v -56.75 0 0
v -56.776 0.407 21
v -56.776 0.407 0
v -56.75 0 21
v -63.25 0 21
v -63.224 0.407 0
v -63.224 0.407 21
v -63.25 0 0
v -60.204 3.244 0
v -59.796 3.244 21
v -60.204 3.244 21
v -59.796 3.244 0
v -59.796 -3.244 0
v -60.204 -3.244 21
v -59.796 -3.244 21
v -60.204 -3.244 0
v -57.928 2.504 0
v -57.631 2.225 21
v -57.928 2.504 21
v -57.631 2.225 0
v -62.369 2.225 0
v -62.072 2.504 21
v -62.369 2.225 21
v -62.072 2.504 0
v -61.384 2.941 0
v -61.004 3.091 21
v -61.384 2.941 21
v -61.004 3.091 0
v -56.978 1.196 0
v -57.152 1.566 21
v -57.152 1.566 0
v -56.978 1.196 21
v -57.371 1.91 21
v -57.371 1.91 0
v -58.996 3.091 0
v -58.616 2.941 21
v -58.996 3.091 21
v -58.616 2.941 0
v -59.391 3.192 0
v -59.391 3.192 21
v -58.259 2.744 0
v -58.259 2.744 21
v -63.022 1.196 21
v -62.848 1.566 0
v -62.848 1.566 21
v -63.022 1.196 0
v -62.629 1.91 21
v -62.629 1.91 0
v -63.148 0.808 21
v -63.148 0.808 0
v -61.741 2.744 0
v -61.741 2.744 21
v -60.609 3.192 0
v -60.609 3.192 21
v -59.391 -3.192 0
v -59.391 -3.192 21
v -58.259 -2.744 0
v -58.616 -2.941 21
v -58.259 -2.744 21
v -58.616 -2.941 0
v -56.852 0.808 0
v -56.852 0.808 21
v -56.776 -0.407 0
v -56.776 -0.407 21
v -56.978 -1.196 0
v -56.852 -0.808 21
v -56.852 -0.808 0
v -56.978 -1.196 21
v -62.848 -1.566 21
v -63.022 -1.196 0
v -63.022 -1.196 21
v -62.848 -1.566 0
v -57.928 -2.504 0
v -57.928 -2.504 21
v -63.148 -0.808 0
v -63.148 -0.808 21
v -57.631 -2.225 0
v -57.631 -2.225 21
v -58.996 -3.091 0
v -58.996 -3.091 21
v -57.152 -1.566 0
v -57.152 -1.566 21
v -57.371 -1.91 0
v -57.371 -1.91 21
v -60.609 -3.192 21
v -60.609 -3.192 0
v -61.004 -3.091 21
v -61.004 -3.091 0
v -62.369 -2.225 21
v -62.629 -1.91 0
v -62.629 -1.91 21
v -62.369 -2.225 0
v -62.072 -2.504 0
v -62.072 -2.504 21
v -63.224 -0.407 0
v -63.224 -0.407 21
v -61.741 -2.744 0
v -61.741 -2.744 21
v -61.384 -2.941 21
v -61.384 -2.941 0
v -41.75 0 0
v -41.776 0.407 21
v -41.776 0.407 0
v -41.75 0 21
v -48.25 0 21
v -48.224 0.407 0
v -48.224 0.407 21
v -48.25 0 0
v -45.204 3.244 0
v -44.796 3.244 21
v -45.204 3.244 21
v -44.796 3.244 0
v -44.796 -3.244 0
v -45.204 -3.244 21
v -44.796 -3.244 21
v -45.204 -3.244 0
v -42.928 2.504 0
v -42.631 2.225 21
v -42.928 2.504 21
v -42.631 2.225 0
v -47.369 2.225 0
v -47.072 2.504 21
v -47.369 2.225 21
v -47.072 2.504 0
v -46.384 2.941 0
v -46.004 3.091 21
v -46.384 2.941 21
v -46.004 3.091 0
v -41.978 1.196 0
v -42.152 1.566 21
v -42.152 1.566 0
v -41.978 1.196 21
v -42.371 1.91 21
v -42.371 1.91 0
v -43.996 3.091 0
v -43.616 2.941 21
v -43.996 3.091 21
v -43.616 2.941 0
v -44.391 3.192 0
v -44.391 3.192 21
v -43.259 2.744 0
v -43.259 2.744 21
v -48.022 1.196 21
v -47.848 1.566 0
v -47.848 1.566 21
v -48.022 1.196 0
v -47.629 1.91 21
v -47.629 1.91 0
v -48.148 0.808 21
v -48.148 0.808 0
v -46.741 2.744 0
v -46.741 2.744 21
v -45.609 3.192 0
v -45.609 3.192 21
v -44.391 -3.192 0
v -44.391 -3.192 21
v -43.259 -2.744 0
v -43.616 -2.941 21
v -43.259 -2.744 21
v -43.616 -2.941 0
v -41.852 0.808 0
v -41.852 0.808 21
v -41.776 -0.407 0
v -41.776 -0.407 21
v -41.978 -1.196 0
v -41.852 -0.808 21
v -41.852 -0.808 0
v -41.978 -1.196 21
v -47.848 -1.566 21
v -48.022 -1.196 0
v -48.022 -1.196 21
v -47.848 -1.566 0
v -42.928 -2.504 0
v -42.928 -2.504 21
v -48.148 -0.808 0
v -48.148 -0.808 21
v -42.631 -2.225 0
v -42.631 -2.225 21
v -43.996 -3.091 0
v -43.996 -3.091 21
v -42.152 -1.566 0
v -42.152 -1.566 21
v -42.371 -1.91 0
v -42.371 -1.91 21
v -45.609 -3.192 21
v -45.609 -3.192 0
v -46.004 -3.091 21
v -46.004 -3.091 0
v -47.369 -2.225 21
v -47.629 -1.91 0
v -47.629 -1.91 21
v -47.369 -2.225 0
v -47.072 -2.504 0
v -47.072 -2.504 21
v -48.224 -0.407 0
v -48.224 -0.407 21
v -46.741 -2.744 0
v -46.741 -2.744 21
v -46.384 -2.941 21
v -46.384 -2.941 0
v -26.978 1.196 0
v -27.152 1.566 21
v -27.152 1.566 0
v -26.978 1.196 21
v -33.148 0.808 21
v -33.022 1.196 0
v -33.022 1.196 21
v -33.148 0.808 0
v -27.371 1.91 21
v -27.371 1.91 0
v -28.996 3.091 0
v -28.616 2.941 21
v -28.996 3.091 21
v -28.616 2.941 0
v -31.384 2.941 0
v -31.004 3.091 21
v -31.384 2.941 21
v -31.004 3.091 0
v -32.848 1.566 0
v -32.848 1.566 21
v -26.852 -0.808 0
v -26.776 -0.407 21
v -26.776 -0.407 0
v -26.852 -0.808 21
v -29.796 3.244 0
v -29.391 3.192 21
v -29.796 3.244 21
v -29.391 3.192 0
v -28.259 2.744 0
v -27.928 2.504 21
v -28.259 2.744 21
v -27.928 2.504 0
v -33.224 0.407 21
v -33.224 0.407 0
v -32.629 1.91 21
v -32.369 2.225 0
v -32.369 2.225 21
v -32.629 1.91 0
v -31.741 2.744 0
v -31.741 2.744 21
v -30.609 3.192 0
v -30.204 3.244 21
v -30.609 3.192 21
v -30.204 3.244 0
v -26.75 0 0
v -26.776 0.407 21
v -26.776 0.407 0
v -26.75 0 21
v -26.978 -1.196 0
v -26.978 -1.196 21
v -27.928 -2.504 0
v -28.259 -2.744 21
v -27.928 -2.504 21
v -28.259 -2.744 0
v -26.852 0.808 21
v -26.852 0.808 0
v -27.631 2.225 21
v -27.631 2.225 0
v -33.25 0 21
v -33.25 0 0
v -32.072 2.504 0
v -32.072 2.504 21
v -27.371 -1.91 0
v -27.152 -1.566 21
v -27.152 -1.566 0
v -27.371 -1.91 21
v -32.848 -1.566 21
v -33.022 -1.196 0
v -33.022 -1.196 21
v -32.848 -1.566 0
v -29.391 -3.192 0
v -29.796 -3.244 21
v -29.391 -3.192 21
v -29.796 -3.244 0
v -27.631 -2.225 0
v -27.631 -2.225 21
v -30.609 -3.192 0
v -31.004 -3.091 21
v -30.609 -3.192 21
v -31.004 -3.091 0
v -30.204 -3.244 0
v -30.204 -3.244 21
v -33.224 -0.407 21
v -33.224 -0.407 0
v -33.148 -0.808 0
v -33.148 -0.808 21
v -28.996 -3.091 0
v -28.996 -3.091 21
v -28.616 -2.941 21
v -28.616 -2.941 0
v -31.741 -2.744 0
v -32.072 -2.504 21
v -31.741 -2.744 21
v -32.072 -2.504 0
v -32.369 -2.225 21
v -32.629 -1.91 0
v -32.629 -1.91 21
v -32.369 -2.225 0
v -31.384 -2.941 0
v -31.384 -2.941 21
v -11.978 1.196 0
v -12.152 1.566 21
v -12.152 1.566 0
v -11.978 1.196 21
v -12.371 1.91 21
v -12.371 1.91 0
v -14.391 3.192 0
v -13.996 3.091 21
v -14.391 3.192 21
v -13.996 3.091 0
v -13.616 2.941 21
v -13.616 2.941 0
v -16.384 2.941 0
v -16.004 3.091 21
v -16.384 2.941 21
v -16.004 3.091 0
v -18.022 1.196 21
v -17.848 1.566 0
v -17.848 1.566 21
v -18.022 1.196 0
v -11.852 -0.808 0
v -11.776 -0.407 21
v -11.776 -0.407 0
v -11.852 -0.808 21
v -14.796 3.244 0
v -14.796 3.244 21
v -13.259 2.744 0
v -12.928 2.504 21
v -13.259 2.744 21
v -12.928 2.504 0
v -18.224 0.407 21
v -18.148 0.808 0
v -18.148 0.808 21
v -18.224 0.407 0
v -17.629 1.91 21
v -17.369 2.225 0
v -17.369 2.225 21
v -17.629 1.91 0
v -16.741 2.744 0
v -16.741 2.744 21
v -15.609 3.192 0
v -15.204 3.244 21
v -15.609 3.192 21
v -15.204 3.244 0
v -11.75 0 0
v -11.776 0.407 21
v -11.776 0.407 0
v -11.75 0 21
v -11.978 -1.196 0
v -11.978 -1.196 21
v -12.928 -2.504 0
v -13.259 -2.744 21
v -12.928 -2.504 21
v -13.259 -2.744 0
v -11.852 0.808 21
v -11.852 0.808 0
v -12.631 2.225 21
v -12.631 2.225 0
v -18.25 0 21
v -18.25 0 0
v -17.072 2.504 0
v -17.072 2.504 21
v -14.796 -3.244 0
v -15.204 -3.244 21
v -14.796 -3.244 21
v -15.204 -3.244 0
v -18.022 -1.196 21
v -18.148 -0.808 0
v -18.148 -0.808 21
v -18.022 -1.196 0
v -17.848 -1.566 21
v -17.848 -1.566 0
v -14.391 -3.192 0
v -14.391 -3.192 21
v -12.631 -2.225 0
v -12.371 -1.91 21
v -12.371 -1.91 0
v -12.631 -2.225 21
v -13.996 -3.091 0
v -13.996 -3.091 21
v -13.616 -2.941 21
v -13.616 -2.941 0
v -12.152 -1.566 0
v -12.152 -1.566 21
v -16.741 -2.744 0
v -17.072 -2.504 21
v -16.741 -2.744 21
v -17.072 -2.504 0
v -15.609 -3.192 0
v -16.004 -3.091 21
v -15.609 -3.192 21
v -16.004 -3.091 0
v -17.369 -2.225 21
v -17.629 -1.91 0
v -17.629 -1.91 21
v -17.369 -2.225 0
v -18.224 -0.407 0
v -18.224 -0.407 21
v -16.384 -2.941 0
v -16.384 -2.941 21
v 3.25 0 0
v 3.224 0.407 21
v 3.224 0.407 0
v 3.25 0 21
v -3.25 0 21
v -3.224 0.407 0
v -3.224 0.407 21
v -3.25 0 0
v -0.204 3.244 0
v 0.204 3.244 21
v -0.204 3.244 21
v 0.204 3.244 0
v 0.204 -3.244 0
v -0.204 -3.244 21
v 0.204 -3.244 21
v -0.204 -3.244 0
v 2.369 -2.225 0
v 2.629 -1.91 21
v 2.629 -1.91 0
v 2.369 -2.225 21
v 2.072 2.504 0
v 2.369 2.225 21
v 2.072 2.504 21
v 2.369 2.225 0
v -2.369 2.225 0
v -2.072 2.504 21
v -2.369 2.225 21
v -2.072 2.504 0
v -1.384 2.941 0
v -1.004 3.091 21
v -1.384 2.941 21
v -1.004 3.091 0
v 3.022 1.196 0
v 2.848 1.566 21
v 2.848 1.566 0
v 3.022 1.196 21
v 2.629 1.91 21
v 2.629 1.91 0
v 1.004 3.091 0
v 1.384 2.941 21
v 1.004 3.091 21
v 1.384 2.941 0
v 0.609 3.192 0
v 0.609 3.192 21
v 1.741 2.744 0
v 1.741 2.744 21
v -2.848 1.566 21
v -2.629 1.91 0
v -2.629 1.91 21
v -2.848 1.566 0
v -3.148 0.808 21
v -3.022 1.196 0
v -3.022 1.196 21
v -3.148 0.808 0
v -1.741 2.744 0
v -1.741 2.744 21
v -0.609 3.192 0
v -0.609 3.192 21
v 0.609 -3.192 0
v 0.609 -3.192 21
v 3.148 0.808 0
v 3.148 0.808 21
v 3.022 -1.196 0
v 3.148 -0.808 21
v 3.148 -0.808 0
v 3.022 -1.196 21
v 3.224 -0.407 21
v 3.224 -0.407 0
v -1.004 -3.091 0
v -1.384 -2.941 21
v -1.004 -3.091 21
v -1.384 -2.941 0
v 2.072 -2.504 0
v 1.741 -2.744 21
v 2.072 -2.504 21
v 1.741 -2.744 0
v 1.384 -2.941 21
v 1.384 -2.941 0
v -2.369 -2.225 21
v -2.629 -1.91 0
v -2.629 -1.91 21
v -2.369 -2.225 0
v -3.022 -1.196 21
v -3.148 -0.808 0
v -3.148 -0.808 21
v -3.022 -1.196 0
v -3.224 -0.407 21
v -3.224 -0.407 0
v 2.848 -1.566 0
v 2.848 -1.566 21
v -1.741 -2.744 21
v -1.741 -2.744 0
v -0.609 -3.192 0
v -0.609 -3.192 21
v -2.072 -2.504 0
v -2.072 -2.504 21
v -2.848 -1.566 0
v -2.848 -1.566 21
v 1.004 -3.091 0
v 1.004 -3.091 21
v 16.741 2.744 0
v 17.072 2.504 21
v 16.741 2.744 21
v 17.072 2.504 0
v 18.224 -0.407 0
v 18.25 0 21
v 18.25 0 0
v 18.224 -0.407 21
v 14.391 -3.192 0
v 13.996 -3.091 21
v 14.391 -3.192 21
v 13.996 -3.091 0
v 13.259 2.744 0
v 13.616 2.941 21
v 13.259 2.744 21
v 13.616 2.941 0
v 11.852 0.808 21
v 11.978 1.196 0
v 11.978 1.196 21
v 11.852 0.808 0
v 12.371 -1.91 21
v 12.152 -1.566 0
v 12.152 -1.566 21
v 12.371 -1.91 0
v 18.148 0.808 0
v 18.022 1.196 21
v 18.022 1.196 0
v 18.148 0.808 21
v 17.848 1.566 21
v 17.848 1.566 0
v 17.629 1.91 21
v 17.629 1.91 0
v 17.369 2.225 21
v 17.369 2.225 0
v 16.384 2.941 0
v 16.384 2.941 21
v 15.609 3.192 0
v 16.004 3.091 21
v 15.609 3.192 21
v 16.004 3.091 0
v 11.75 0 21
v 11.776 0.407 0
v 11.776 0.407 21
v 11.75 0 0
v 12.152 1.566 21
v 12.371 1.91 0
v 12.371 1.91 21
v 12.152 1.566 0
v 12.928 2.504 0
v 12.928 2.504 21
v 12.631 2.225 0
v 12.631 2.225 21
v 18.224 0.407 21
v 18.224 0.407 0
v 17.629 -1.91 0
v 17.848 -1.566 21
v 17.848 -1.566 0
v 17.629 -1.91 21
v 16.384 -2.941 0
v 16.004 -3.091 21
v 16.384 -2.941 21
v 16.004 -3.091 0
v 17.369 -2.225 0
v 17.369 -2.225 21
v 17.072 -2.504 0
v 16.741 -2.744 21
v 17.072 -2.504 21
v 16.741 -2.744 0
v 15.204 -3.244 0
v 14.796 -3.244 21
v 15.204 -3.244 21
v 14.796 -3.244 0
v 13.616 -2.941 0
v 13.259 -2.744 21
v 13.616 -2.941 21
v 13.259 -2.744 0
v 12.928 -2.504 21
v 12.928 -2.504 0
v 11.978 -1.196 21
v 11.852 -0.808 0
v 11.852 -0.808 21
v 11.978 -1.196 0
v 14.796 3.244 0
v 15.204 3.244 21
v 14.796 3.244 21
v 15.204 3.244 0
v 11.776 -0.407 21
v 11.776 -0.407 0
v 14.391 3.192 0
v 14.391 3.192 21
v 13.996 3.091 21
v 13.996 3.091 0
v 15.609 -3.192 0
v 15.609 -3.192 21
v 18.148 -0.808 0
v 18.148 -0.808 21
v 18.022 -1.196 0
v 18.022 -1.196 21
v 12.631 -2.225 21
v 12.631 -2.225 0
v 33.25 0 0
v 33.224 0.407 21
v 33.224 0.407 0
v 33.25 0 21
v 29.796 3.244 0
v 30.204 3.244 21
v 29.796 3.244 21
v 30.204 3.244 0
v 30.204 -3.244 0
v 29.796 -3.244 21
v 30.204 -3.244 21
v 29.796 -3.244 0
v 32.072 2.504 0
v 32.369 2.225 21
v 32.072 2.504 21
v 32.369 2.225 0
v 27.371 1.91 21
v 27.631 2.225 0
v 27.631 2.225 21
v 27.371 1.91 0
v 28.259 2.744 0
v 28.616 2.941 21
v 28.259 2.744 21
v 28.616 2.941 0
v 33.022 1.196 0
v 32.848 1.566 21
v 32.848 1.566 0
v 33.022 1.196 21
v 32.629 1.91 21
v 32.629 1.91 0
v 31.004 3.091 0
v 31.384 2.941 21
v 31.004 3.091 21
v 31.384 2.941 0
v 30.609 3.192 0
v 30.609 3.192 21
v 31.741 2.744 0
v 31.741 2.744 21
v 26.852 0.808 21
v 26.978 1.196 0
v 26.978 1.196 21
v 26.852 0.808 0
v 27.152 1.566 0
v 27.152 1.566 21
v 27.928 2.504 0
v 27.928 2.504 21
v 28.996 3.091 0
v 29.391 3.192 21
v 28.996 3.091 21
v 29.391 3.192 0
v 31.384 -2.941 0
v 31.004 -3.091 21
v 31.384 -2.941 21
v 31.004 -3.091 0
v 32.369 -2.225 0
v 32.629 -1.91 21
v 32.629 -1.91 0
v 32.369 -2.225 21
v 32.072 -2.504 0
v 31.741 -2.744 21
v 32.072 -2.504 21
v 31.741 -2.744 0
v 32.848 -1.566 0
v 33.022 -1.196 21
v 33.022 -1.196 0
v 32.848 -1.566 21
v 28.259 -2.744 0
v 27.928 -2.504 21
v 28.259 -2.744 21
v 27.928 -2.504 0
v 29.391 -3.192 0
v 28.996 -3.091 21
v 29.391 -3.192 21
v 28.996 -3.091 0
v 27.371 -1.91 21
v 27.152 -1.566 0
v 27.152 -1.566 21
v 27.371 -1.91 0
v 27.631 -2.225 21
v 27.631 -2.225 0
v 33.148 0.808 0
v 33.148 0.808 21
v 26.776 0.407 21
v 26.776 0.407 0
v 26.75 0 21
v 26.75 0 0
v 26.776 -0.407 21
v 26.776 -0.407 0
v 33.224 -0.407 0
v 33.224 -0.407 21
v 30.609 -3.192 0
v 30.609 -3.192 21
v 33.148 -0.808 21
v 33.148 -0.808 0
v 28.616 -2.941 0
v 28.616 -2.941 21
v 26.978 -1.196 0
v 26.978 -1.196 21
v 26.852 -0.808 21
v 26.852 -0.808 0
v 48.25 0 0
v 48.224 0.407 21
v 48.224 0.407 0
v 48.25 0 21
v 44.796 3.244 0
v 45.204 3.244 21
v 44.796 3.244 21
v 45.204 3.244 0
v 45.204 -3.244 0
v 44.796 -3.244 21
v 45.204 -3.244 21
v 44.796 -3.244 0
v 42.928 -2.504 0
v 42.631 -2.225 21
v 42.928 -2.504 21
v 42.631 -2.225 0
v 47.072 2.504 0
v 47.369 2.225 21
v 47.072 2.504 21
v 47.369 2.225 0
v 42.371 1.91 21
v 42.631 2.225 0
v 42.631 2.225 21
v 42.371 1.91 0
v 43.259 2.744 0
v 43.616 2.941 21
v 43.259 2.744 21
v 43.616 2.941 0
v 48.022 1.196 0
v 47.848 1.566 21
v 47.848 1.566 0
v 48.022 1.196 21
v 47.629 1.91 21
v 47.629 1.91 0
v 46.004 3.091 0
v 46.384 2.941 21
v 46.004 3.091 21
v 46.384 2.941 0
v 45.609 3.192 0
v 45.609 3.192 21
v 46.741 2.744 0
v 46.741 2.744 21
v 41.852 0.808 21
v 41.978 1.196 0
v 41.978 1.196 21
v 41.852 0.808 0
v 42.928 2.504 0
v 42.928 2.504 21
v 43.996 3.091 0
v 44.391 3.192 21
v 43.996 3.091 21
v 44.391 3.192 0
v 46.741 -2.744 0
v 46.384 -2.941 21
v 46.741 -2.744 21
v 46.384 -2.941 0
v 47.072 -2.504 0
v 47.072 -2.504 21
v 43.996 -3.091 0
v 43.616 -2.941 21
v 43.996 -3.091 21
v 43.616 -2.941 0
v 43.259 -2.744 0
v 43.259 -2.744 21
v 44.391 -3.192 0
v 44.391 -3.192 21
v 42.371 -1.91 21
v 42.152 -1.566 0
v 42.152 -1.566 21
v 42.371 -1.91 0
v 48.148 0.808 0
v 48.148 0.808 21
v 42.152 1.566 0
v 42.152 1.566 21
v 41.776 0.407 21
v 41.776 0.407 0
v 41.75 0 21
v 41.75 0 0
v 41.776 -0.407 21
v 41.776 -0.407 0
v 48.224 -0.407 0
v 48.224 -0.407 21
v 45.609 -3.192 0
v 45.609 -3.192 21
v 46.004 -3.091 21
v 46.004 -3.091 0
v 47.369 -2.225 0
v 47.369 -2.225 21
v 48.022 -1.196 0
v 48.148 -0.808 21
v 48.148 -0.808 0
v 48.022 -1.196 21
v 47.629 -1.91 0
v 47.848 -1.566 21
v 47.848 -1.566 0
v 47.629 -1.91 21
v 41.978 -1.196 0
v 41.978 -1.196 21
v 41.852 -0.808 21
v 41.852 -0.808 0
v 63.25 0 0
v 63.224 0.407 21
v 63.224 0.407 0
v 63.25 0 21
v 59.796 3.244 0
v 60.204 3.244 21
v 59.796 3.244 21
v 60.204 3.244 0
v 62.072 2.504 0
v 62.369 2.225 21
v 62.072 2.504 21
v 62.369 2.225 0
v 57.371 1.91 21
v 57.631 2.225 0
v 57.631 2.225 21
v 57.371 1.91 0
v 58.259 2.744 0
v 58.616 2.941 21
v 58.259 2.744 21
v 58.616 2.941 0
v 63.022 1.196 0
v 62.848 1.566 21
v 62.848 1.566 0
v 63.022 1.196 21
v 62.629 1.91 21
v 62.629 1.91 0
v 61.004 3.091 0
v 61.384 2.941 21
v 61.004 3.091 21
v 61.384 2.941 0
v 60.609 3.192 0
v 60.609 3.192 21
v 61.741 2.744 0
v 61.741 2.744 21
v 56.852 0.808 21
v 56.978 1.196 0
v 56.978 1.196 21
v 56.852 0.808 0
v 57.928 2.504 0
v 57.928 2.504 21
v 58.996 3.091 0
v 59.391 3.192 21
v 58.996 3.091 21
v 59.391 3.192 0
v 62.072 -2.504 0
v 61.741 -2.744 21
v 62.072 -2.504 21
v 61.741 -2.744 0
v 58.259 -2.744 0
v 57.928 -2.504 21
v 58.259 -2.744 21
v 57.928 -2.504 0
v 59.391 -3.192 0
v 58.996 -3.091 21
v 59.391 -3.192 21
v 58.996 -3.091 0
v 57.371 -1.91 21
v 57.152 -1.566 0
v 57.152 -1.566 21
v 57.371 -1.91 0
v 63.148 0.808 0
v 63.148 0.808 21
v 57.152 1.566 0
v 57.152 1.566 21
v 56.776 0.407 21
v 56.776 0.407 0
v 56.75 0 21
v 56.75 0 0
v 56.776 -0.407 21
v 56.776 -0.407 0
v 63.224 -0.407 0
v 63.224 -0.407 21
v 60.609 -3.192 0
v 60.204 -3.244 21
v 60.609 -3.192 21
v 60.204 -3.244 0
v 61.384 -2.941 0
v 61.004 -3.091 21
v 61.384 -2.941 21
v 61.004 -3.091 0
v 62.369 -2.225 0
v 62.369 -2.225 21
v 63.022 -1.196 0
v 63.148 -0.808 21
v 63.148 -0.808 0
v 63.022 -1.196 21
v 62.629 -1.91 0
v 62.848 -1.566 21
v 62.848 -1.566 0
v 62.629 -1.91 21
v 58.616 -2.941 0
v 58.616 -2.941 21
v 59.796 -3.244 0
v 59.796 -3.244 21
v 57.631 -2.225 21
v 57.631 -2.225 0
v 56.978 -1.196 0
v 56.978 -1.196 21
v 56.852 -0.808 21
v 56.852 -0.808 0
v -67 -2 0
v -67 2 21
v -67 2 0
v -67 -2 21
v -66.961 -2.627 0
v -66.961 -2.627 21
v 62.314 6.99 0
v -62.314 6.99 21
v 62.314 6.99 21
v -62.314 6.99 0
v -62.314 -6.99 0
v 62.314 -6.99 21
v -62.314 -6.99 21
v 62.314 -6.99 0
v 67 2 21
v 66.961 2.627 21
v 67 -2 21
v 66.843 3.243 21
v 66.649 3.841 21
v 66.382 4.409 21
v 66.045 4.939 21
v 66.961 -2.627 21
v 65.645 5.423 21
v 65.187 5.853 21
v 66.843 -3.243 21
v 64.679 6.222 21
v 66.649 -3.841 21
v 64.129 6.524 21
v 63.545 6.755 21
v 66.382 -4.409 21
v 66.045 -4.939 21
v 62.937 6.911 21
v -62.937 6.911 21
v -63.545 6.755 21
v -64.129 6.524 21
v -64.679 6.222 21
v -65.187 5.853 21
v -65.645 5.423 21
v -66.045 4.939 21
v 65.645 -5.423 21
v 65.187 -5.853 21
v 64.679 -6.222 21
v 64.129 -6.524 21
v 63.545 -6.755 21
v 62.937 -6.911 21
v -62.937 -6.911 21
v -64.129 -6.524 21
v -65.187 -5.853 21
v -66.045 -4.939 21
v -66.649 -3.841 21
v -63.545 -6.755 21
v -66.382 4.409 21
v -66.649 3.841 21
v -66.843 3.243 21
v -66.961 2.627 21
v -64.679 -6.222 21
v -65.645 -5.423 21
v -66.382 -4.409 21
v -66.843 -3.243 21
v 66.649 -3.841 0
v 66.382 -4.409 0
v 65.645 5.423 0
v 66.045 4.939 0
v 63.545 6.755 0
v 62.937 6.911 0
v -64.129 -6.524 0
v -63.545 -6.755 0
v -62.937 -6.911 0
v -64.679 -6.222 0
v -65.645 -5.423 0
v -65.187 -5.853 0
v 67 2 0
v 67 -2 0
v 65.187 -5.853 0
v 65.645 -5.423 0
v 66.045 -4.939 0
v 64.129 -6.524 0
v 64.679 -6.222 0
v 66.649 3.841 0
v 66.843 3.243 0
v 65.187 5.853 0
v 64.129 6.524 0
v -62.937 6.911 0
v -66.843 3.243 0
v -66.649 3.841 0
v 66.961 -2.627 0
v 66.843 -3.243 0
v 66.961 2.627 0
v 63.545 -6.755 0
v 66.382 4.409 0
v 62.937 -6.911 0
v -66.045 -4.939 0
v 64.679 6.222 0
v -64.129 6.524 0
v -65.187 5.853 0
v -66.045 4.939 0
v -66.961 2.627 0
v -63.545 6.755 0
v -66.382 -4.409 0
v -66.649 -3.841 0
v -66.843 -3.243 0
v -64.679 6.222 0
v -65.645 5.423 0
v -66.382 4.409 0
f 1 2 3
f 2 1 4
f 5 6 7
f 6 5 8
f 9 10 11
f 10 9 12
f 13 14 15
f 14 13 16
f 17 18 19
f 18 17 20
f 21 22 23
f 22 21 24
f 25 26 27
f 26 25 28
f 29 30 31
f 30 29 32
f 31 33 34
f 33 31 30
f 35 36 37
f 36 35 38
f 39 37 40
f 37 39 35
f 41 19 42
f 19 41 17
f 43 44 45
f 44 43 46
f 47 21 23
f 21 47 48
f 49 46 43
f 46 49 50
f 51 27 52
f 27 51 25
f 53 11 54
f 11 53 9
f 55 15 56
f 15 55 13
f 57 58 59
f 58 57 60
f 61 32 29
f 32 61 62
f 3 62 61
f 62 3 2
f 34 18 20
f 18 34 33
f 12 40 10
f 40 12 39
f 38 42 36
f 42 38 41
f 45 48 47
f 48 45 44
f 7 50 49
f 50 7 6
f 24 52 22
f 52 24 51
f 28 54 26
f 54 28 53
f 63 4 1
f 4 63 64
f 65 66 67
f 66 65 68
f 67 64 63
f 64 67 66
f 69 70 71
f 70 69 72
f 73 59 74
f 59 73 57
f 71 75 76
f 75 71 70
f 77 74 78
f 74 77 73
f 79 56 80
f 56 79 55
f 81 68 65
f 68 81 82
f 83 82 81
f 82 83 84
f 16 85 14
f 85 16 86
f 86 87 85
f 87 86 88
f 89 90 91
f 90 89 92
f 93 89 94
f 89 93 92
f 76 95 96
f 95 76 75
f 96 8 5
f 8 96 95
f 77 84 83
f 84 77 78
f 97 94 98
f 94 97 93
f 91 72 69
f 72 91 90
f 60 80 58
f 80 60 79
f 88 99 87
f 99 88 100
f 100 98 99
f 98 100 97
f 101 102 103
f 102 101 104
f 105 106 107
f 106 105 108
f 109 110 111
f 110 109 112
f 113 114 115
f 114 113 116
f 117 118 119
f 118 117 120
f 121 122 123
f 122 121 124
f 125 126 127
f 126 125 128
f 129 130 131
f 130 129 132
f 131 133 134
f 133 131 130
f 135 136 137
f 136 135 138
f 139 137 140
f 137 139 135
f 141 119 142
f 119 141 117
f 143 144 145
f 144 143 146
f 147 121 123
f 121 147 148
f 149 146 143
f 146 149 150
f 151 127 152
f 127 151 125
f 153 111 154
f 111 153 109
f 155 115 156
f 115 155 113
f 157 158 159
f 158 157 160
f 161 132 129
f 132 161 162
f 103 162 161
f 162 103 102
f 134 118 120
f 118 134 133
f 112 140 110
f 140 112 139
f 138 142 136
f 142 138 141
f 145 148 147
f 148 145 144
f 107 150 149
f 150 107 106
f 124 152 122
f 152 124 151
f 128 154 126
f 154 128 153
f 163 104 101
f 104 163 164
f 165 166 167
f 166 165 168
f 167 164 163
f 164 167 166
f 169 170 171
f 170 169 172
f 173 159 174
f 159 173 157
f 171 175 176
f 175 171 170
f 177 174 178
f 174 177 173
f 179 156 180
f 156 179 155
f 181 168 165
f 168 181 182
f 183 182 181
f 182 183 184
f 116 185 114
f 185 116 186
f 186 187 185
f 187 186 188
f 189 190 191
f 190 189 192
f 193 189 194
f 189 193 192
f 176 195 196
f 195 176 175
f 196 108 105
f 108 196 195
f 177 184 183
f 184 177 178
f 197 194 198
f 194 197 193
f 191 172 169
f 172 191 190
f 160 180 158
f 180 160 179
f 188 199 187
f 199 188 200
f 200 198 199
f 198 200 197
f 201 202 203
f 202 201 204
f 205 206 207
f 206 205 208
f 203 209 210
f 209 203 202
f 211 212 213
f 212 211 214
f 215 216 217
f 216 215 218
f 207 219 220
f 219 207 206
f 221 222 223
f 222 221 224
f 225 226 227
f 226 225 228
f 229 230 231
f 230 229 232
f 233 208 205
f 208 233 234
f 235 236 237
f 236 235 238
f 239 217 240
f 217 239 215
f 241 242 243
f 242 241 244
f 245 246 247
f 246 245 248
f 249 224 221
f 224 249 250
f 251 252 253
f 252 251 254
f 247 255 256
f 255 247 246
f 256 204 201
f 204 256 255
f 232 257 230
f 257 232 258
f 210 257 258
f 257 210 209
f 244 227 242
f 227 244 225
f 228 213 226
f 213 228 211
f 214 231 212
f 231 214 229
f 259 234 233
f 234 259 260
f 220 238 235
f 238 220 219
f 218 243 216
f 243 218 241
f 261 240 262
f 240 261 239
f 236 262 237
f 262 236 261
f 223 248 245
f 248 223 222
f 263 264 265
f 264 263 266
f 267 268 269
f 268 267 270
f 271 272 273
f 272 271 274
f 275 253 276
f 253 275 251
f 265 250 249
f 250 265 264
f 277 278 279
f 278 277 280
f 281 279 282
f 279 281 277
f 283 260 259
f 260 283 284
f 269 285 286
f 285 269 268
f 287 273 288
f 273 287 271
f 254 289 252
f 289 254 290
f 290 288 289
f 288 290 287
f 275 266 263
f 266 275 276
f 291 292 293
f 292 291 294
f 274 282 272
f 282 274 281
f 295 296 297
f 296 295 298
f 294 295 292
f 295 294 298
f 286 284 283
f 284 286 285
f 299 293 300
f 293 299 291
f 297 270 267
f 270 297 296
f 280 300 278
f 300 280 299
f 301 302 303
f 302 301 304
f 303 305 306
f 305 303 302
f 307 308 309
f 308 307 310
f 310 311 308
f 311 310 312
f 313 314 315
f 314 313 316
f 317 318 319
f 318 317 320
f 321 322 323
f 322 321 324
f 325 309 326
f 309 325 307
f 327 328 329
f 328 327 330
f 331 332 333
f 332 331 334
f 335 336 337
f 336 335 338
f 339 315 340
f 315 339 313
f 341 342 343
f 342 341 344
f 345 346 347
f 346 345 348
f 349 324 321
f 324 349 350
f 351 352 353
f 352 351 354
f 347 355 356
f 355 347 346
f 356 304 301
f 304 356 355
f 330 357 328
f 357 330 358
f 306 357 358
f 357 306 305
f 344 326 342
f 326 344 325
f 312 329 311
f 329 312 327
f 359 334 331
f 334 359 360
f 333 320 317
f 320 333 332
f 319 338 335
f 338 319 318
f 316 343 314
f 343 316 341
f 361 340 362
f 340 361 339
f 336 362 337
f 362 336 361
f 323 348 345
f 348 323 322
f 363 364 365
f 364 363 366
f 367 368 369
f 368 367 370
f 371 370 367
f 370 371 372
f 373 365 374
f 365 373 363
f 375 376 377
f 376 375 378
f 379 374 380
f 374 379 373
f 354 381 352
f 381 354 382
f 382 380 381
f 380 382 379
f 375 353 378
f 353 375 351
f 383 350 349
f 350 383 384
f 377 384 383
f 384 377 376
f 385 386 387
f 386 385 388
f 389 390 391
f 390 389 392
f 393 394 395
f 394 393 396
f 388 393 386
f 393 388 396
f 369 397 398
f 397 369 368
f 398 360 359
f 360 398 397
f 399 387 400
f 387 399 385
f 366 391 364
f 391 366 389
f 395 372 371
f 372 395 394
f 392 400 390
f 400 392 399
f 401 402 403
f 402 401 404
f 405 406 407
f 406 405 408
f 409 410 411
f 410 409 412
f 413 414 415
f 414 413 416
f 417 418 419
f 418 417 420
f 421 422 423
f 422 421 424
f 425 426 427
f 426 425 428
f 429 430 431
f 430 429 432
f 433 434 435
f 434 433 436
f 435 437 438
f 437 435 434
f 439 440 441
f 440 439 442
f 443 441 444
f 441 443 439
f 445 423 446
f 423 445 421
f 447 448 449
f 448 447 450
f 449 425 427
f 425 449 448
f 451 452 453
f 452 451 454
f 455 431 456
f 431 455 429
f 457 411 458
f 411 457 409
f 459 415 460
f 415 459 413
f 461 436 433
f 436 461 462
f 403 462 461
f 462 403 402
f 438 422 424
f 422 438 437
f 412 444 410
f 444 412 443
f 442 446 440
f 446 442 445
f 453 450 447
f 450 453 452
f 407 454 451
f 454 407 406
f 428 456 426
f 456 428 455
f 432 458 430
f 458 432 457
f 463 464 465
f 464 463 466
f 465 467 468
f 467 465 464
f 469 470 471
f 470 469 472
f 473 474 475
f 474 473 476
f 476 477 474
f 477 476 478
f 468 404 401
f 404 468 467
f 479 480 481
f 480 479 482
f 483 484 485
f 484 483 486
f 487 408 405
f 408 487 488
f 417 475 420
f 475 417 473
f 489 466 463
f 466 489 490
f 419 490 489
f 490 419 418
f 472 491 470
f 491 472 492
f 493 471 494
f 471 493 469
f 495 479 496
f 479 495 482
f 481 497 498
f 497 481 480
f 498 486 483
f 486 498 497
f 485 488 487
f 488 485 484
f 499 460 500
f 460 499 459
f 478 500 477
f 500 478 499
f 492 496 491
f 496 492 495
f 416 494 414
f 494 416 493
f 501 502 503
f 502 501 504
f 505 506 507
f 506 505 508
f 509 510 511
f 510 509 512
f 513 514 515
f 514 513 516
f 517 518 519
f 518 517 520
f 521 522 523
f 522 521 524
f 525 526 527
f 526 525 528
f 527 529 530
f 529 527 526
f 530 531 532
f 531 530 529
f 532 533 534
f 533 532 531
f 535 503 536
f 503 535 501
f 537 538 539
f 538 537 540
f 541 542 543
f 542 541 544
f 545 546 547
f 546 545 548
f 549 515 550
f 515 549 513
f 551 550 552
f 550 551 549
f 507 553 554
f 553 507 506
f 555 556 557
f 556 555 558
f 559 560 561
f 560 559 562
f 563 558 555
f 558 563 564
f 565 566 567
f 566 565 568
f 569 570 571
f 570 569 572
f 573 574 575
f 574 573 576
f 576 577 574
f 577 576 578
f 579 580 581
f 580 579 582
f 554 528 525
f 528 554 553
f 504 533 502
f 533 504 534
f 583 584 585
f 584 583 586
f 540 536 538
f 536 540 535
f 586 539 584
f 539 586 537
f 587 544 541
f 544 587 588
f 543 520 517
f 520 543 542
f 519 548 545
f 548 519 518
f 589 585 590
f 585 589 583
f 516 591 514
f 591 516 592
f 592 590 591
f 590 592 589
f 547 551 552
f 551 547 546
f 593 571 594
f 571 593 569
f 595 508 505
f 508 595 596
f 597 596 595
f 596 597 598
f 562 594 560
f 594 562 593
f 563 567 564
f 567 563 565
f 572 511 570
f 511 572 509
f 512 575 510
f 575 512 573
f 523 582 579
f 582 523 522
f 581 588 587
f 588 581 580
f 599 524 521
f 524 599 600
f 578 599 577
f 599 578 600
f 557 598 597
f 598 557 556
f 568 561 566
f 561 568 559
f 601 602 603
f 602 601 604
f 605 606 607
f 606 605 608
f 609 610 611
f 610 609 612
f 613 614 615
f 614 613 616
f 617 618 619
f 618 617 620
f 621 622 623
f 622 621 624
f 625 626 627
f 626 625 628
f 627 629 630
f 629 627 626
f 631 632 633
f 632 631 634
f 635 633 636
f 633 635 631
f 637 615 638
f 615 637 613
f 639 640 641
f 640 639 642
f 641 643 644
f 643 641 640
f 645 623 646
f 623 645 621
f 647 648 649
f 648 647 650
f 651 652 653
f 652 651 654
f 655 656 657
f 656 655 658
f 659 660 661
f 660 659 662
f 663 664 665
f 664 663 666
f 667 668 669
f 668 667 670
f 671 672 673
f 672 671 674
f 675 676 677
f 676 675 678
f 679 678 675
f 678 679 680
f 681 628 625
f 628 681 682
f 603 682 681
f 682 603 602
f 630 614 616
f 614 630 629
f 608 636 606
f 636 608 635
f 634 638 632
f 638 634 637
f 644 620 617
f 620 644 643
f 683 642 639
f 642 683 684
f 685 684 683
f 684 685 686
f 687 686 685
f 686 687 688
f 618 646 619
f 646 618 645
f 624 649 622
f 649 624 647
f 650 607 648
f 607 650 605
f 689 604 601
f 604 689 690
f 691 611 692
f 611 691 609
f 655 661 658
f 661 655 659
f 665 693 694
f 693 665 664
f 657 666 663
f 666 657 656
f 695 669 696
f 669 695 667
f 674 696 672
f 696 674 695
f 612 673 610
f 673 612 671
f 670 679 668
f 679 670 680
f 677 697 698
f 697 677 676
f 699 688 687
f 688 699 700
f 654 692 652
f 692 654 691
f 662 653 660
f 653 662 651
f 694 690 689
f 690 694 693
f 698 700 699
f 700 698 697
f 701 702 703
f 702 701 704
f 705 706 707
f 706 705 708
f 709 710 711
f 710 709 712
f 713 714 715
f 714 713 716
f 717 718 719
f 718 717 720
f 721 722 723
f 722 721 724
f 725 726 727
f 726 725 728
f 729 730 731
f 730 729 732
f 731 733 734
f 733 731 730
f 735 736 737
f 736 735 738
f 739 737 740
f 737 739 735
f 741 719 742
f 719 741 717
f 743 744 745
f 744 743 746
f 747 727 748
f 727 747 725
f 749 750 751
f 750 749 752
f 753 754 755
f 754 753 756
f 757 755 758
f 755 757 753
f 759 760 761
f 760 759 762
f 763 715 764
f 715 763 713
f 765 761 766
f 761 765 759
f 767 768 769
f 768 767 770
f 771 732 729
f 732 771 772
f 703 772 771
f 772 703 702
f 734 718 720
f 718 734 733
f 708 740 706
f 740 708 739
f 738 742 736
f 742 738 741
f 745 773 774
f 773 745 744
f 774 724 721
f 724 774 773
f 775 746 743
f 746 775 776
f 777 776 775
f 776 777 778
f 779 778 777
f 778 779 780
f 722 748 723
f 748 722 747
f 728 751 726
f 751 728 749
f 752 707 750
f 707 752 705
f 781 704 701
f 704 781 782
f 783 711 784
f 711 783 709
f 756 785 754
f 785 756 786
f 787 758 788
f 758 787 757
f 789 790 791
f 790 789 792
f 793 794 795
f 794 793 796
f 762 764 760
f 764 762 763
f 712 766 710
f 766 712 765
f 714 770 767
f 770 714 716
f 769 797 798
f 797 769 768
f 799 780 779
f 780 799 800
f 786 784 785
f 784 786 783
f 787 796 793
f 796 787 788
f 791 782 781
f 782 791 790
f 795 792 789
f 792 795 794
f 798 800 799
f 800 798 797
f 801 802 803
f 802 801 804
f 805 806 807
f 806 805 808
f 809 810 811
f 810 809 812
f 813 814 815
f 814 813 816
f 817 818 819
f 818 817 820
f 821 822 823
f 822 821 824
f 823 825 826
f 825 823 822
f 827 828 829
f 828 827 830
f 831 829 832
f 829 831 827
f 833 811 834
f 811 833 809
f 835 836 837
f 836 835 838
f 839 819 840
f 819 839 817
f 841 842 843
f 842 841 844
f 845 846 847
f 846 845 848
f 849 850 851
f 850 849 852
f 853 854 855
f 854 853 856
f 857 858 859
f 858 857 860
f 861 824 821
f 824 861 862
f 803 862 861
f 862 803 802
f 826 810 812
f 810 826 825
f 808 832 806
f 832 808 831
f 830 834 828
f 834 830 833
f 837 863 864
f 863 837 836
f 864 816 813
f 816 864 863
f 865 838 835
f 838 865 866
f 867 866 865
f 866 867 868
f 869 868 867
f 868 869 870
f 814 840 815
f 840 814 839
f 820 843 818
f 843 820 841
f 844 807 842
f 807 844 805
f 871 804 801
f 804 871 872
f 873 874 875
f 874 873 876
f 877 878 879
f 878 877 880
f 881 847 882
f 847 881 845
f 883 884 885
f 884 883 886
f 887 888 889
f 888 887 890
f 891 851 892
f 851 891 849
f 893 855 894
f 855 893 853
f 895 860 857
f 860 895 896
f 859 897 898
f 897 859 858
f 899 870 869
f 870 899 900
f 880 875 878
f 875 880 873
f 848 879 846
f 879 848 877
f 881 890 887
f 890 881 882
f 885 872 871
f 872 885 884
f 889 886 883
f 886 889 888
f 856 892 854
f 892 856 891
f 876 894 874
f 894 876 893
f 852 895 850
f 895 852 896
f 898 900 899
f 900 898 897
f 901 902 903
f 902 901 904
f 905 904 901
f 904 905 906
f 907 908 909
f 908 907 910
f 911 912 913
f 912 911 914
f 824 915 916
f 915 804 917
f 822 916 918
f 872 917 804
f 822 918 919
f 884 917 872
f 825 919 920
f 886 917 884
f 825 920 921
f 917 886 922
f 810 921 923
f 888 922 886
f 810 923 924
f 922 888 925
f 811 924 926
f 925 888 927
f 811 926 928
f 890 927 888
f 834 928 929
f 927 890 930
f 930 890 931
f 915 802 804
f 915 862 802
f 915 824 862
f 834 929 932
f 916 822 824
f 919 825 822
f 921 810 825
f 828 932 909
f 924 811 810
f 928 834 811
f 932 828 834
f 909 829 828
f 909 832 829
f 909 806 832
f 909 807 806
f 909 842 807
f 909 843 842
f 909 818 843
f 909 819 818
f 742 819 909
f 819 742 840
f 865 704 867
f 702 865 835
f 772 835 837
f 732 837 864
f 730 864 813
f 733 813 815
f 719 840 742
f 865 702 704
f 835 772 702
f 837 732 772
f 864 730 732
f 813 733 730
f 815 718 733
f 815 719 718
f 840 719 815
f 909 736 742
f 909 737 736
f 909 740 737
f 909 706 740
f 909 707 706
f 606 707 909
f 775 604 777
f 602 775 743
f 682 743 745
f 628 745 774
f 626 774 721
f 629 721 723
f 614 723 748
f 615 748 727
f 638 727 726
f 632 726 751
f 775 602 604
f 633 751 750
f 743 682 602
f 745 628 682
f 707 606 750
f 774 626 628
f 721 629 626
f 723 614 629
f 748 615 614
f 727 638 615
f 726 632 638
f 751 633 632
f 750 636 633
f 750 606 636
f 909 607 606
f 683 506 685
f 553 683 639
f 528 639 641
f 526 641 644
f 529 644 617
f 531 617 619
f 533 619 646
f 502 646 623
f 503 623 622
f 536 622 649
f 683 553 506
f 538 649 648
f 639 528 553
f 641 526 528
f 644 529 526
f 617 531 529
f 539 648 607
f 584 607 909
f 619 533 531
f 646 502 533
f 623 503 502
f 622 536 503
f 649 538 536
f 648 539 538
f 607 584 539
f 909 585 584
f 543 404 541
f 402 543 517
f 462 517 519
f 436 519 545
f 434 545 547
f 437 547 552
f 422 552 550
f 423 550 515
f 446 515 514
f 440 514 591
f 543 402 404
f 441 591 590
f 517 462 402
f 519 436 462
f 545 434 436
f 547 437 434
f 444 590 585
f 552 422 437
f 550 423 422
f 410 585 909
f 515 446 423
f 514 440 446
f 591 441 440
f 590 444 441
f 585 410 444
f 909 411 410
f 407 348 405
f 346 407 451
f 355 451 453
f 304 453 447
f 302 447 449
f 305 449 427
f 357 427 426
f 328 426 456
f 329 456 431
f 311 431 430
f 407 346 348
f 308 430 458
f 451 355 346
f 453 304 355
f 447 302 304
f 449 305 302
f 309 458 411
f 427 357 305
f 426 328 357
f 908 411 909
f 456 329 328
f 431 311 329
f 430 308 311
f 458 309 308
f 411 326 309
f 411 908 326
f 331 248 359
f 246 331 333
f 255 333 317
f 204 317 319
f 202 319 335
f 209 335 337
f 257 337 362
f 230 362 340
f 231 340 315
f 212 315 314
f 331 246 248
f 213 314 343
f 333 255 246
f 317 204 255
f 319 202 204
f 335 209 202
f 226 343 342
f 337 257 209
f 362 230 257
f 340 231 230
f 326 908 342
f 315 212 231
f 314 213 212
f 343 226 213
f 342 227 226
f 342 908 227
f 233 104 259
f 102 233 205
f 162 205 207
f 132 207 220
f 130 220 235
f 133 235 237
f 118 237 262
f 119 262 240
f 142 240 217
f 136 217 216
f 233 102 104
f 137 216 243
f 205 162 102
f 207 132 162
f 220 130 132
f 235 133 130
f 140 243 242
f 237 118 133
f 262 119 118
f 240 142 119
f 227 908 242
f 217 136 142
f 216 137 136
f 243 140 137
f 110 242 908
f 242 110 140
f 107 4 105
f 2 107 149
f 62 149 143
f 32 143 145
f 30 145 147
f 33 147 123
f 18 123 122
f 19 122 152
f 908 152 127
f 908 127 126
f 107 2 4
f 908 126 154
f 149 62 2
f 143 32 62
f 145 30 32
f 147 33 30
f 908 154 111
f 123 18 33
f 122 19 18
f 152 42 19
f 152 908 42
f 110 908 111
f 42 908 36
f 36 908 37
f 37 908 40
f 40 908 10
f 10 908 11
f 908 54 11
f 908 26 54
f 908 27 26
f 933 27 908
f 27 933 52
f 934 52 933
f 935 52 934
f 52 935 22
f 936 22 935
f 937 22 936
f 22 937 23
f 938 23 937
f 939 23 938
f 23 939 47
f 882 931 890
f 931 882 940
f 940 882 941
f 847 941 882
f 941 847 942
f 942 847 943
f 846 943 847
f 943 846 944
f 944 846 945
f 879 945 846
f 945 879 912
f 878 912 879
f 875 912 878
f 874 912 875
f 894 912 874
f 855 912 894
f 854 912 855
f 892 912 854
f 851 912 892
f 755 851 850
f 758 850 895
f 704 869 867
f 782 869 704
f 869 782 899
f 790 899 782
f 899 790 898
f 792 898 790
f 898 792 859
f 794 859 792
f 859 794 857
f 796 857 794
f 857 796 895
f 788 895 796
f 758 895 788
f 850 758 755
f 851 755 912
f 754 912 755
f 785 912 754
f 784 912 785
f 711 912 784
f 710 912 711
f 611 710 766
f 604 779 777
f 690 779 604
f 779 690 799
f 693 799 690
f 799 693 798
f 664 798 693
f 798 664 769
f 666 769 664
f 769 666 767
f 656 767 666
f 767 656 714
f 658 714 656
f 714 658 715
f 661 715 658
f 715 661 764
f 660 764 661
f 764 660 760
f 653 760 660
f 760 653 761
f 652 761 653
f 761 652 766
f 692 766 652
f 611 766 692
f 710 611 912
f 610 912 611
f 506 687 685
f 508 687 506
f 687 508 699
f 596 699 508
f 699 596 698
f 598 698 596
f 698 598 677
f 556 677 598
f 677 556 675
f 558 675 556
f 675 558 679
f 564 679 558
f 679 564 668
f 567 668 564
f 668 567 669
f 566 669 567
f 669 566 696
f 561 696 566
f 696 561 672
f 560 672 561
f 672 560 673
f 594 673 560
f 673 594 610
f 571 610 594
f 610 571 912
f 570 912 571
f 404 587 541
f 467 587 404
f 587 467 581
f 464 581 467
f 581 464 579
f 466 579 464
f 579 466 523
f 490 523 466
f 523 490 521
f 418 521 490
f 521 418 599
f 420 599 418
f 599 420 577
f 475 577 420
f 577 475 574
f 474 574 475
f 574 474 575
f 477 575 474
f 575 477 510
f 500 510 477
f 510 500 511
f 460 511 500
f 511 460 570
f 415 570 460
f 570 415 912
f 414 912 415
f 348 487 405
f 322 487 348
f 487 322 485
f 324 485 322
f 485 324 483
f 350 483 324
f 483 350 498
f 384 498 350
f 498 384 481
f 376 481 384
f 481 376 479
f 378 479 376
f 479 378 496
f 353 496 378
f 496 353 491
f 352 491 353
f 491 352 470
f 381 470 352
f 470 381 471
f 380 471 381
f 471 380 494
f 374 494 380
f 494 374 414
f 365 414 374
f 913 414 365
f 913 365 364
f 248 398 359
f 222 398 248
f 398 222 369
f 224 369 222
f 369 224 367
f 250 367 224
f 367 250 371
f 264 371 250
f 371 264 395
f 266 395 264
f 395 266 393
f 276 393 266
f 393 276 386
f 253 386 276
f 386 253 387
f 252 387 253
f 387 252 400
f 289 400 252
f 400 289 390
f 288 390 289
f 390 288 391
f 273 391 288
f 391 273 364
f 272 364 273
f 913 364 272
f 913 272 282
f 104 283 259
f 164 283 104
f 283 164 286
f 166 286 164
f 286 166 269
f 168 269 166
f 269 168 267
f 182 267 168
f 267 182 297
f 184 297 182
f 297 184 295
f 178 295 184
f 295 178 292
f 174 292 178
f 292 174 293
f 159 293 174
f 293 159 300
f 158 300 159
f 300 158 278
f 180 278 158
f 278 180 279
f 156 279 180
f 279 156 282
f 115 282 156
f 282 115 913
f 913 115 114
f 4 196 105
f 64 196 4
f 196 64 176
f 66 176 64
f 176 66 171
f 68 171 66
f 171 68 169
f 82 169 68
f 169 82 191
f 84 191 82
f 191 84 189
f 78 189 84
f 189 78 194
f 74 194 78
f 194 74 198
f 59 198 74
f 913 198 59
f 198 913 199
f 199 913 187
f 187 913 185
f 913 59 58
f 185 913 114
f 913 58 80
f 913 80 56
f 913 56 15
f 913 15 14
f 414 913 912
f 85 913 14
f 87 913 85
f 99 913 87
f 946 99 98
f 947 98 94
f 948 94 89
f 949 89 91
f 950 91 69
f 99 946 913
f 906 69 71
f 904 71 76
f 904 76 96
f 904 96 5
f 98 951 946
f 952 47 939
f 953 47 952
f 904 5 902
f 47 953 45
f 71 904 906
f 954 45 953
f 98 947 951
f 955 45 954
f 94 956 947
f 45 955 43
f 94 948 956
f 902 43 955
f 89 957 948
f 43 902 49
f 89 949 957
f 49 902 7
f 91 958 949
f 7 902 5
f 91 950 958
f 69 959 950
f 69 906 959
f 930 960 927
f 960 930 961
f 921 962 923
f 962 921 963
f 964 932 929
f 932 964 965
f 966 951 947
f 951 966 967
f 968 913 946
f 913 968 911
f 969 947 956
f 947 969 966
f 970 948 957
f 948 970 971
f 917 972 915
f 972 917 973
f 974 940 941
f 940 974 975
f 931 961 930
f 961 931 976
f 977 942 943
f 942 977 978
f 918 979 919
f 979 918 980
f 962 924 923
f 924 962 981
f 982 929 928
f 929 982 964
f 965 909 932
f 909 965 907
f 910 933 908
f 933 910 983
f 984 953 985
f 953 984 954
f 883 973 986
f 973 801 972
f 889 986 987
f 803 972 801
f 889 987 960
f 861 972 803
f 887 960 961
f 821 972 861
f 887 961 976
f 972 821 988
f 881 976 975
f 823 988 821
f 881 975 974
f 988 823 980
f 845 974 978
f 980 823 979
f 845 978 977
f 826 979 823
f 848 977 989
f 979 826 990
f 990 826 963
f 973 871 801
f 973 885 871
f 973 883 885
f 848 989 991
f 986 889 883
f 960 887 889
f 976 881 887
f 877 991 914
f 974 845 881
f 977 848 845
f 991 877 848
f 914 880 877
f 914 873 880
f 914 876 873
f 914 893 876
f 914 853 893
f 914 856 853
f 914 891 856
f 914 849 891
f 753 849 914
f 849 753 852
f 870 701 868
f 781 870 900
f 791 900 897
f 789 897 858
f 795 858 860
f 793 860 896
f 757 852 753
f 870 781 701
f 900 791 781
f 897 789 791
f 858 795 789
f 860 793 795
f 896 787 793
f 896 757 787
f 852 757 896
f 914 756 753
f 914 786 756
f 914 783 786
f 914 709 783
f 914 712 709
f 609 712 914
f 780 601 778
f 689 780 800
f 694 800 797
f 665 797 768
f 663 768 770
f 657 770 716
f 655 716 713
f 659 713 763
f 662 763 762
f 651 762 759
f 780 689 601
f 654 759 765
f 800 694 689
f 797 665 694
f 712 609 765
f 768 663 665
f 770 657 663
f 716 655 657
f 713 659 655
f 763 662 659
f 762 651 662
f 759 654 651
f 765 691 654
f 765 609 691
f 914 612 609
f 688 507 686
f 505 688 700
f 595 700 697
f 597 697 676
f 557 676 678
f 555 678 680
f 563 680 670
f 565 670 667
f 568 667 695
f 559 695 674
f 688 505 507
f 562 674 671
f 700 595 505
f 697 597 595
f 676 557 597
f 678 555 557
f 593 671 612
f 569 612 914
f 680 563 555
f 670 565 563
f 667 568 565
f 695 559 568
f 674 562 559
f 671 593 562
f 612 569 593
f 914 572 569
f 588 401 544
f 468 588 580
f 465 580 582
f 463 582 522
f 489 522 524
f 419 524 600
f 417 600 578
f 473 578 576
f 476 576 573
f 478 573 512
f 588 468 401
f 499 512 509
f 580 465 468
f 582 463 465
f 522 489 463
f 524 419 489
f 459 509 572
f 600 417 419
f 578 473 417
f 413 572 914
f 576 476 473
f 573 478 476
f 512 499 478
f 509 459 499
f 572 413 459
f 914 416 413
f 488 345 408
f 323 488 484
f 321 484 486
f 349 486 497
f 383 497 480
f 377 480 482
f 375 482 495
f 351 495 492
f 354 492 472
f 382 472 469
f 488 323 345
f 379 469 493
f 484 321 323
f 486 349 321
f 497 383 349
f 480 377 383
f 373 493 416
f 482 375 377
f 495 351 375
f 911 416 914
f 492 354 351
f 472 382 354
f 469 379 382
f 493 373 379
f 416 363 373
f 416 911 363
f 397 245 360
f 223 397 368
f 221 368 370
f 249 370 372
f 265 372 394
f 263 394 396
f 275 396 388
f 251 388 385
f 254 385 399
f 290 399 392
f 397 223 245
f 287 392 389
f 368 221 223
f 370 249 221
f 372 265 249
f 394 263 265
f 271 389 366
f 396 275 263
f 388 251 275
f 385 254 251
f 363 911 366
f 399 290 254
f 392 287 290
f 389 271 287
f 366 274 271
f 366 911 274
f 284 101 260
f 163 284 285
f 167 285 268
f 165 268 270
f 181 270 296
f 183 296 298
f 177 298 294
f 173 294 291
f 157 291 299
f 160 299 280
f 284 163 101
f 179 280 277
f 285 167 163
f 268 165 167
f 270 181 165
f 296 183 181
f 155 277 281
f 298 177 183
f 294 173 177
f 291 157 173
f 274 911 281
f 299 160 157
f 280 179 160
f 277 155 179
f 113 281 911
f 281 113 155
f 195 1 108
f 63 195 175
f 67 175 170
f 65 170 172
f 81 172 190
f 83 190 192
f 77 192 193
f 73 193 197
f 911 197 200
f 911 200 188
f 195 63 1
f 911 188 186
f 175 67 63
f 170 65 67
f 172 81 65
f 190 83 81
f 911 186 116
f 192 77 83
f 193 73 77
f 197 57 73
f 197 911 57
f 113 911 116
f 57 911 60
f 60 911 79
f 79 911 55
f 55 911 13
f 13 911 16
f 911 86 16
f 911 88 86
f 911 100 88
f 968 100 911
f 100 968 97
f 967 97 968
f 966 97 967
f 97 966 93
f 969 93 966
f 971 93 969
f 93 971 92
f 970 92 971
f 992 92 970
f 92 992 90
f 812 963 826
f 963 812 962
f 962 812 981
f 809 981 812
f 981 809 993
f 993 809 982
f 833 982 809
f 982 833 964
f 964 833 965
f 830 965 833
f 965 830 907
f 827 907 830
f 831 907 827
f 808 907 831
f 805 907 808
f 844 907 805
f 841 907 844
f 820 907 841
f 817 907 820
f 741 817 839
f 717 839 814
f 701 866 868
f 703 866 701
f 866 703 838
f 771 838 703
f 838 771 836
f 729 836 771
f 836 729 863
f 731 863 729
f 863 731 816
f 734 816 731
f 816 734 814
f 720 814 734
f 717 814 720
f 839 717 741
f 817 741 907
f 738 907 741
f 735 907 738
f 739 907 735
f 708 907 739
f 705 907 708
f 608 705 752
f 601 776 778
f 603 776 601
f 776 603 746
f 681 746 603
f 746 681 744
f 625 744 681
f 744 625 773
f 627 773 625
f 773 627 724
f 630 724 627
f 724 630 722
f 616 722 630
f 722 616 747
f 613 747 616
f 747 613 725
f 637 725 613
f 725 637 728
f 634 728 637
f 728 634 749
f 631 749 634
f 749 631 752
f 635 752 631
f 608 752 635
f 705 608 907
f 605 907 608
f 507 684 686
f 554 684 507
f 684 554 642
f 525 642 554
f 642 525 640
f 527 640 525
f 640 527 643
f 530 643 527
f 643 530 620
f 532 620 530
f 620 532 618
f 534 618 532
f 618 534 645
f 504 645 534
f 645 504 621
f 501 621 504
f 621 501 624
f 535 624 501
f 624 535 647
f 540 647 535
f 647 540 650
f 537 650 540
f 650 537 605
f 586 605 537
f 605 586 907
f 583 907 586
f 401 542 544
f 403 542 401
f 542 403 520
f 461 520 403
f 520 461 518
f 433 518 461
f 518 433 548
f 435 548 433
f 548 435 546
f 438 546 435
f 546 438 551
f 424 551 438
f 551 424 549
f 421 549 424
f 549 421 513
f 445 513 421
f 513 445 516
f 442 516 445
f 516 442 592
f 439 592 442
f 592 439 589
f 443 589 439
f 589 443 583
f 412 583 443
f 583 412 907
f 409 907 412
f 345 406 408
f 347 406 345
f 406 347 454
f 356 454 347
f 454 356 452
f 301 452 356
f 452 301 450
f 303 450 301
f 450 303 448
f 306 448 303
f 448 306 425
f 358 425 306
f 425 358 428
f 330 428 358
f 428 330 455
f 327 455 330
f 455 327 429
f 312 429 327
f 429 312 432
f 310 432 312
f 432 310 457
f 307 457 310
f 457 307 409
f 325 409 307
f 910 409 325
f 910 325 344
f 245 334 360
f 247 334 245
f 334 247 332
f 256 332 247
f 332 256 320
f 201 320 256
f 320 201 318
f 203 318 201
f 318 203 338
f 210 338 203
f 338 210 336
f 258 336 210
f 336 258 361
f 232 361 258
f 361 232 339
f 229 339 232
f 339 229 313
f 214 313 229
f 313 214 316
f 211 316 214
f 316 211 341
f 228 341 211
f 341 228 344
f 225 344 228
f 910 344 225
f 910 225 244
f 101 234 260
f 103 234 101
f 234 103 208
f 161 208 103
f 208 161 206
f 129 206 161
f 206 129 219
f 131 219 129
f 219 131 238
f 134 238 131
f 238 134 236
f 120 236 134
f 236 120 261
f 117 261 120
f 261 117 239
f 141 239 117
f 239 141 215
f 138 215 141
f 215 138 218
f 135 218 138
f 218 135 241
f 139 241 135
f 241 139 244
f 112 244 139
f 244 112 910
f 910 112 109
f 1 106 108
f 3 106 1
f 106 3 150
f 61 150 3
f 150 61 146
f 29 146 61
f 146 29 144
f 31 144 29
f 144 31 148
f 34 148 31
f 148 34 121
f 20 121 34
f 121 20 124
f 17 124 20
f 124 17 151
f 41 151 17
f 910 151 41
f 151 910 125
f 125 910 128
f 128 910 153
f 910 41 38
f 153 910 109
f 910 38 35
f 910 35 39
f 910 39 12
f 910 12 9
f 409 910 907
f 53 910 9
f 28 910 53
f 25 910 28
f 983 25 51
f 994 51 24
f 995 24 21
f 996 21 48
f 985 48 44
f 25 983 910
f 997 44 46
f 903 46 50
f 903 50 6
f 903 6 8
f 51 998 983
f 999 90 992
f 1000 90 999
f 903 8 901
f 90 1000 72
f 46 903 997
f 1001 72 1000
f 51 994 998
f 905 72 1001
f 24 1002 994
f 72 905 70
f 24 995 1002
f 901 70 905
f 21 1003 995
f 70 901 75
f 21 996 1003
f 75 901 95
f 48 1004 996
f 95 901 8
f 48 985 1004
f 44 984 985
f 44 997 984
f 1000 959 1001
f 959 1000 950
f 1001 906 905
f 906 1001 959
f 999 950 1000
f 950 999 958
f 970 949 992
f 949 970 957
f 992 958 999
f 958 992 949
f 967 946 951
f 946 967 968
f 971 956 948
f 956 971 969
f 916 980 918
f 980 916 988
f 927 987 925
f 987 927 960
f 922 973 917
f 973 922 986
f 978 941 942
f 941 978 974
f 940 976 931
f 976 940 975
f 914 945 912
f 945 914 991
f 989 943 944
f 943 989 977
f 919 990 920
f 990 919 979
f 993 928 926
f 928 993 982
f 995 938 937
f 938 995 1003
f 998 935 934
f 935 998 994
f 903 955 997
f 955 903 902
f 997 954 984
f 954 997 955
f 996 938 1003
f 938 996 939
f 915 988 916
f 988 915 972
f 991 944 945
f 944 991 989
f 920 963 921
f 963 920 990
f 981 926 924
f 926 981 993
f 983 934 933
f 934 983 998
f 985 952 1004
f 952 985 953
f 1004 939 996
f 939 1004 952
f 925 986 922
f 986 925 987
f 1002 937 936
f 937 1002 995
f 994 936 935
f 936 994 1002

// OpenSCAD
$fn = 50;


difference() {
	union() {
		hull() {
			translate(v = [-62.0000000000, 2.0000000000, 0]) {
				cylinder(h = 21, r = 5);
			}
			translate(v = [62.0000000000, 2.0000000000, 0]) {
				cylinder(h = 21, r = 5);
			}
			translate(v = [-62.0000000000, -2.0000000000, 0]) {
				cylinder(h = 21, r = 5);
			}
			translate(v = [62.0000000000, -2.0000000000, 0]) {
				cylinder(h = 21, r = 5);
			}
		}
	}
	union() {
		translate(v = [-60.0000000000, 0.0000000000, 0]) {
			translate(v = [0, 0, -100]) {
				cylinder(h = 200, r = 3.2500000000);
			}
		}
		translate(v = [-45.0000000000, 0.0000000000, 0]) {
			translate(v = [0, 0, -100]) {
				cylinder(h = 200, r = 3.2500000000);
			}
		}
		translate(v = [-30.0000000000, 0.0000000000, 0]) {
			translate(v = [0, 0, -100]) {
				cylinder(h = 200, r = 3.2500000000);
			}
		}
		translate(v = [-15.0000000000, 0.0000000000, 0]) {
			translate(v = [0, 0, -100]) {
				cylinder(h = 200, r = 3.2500000000);
			}
		}
		translate(v = [0, 0, -100]) {
			cylinder(h = 200, r = 3.2500000000);
		}
		translate(v = [15.0000000000, 0.0000000000, 0]) {
			translate(v = [0, 0, -100]) {
				cylinder(h = 200, r = 3.2500000000);
			}
		}
		translate(v = [30.0000000000, 0.0000000000, 0]) {
			translate(v = [0, 0, -100]) {
				cylinder(h = 200, r = 3.2500000000);
			}
		}
		translate(v = [45.0000000000, 0.0000000000, 0]) {
			translate(v = [0, 0, -100]) {
				cylinder(h = 200, r = 3.2500000000);
			}
		}
		translate(v = [60.0000000000, 0.0000000000, 0]) {
			translate(v = [0, 0, -100]) {
				cylinder(h = 200, r = 3.2500000000);
			}
		}
	}
}
